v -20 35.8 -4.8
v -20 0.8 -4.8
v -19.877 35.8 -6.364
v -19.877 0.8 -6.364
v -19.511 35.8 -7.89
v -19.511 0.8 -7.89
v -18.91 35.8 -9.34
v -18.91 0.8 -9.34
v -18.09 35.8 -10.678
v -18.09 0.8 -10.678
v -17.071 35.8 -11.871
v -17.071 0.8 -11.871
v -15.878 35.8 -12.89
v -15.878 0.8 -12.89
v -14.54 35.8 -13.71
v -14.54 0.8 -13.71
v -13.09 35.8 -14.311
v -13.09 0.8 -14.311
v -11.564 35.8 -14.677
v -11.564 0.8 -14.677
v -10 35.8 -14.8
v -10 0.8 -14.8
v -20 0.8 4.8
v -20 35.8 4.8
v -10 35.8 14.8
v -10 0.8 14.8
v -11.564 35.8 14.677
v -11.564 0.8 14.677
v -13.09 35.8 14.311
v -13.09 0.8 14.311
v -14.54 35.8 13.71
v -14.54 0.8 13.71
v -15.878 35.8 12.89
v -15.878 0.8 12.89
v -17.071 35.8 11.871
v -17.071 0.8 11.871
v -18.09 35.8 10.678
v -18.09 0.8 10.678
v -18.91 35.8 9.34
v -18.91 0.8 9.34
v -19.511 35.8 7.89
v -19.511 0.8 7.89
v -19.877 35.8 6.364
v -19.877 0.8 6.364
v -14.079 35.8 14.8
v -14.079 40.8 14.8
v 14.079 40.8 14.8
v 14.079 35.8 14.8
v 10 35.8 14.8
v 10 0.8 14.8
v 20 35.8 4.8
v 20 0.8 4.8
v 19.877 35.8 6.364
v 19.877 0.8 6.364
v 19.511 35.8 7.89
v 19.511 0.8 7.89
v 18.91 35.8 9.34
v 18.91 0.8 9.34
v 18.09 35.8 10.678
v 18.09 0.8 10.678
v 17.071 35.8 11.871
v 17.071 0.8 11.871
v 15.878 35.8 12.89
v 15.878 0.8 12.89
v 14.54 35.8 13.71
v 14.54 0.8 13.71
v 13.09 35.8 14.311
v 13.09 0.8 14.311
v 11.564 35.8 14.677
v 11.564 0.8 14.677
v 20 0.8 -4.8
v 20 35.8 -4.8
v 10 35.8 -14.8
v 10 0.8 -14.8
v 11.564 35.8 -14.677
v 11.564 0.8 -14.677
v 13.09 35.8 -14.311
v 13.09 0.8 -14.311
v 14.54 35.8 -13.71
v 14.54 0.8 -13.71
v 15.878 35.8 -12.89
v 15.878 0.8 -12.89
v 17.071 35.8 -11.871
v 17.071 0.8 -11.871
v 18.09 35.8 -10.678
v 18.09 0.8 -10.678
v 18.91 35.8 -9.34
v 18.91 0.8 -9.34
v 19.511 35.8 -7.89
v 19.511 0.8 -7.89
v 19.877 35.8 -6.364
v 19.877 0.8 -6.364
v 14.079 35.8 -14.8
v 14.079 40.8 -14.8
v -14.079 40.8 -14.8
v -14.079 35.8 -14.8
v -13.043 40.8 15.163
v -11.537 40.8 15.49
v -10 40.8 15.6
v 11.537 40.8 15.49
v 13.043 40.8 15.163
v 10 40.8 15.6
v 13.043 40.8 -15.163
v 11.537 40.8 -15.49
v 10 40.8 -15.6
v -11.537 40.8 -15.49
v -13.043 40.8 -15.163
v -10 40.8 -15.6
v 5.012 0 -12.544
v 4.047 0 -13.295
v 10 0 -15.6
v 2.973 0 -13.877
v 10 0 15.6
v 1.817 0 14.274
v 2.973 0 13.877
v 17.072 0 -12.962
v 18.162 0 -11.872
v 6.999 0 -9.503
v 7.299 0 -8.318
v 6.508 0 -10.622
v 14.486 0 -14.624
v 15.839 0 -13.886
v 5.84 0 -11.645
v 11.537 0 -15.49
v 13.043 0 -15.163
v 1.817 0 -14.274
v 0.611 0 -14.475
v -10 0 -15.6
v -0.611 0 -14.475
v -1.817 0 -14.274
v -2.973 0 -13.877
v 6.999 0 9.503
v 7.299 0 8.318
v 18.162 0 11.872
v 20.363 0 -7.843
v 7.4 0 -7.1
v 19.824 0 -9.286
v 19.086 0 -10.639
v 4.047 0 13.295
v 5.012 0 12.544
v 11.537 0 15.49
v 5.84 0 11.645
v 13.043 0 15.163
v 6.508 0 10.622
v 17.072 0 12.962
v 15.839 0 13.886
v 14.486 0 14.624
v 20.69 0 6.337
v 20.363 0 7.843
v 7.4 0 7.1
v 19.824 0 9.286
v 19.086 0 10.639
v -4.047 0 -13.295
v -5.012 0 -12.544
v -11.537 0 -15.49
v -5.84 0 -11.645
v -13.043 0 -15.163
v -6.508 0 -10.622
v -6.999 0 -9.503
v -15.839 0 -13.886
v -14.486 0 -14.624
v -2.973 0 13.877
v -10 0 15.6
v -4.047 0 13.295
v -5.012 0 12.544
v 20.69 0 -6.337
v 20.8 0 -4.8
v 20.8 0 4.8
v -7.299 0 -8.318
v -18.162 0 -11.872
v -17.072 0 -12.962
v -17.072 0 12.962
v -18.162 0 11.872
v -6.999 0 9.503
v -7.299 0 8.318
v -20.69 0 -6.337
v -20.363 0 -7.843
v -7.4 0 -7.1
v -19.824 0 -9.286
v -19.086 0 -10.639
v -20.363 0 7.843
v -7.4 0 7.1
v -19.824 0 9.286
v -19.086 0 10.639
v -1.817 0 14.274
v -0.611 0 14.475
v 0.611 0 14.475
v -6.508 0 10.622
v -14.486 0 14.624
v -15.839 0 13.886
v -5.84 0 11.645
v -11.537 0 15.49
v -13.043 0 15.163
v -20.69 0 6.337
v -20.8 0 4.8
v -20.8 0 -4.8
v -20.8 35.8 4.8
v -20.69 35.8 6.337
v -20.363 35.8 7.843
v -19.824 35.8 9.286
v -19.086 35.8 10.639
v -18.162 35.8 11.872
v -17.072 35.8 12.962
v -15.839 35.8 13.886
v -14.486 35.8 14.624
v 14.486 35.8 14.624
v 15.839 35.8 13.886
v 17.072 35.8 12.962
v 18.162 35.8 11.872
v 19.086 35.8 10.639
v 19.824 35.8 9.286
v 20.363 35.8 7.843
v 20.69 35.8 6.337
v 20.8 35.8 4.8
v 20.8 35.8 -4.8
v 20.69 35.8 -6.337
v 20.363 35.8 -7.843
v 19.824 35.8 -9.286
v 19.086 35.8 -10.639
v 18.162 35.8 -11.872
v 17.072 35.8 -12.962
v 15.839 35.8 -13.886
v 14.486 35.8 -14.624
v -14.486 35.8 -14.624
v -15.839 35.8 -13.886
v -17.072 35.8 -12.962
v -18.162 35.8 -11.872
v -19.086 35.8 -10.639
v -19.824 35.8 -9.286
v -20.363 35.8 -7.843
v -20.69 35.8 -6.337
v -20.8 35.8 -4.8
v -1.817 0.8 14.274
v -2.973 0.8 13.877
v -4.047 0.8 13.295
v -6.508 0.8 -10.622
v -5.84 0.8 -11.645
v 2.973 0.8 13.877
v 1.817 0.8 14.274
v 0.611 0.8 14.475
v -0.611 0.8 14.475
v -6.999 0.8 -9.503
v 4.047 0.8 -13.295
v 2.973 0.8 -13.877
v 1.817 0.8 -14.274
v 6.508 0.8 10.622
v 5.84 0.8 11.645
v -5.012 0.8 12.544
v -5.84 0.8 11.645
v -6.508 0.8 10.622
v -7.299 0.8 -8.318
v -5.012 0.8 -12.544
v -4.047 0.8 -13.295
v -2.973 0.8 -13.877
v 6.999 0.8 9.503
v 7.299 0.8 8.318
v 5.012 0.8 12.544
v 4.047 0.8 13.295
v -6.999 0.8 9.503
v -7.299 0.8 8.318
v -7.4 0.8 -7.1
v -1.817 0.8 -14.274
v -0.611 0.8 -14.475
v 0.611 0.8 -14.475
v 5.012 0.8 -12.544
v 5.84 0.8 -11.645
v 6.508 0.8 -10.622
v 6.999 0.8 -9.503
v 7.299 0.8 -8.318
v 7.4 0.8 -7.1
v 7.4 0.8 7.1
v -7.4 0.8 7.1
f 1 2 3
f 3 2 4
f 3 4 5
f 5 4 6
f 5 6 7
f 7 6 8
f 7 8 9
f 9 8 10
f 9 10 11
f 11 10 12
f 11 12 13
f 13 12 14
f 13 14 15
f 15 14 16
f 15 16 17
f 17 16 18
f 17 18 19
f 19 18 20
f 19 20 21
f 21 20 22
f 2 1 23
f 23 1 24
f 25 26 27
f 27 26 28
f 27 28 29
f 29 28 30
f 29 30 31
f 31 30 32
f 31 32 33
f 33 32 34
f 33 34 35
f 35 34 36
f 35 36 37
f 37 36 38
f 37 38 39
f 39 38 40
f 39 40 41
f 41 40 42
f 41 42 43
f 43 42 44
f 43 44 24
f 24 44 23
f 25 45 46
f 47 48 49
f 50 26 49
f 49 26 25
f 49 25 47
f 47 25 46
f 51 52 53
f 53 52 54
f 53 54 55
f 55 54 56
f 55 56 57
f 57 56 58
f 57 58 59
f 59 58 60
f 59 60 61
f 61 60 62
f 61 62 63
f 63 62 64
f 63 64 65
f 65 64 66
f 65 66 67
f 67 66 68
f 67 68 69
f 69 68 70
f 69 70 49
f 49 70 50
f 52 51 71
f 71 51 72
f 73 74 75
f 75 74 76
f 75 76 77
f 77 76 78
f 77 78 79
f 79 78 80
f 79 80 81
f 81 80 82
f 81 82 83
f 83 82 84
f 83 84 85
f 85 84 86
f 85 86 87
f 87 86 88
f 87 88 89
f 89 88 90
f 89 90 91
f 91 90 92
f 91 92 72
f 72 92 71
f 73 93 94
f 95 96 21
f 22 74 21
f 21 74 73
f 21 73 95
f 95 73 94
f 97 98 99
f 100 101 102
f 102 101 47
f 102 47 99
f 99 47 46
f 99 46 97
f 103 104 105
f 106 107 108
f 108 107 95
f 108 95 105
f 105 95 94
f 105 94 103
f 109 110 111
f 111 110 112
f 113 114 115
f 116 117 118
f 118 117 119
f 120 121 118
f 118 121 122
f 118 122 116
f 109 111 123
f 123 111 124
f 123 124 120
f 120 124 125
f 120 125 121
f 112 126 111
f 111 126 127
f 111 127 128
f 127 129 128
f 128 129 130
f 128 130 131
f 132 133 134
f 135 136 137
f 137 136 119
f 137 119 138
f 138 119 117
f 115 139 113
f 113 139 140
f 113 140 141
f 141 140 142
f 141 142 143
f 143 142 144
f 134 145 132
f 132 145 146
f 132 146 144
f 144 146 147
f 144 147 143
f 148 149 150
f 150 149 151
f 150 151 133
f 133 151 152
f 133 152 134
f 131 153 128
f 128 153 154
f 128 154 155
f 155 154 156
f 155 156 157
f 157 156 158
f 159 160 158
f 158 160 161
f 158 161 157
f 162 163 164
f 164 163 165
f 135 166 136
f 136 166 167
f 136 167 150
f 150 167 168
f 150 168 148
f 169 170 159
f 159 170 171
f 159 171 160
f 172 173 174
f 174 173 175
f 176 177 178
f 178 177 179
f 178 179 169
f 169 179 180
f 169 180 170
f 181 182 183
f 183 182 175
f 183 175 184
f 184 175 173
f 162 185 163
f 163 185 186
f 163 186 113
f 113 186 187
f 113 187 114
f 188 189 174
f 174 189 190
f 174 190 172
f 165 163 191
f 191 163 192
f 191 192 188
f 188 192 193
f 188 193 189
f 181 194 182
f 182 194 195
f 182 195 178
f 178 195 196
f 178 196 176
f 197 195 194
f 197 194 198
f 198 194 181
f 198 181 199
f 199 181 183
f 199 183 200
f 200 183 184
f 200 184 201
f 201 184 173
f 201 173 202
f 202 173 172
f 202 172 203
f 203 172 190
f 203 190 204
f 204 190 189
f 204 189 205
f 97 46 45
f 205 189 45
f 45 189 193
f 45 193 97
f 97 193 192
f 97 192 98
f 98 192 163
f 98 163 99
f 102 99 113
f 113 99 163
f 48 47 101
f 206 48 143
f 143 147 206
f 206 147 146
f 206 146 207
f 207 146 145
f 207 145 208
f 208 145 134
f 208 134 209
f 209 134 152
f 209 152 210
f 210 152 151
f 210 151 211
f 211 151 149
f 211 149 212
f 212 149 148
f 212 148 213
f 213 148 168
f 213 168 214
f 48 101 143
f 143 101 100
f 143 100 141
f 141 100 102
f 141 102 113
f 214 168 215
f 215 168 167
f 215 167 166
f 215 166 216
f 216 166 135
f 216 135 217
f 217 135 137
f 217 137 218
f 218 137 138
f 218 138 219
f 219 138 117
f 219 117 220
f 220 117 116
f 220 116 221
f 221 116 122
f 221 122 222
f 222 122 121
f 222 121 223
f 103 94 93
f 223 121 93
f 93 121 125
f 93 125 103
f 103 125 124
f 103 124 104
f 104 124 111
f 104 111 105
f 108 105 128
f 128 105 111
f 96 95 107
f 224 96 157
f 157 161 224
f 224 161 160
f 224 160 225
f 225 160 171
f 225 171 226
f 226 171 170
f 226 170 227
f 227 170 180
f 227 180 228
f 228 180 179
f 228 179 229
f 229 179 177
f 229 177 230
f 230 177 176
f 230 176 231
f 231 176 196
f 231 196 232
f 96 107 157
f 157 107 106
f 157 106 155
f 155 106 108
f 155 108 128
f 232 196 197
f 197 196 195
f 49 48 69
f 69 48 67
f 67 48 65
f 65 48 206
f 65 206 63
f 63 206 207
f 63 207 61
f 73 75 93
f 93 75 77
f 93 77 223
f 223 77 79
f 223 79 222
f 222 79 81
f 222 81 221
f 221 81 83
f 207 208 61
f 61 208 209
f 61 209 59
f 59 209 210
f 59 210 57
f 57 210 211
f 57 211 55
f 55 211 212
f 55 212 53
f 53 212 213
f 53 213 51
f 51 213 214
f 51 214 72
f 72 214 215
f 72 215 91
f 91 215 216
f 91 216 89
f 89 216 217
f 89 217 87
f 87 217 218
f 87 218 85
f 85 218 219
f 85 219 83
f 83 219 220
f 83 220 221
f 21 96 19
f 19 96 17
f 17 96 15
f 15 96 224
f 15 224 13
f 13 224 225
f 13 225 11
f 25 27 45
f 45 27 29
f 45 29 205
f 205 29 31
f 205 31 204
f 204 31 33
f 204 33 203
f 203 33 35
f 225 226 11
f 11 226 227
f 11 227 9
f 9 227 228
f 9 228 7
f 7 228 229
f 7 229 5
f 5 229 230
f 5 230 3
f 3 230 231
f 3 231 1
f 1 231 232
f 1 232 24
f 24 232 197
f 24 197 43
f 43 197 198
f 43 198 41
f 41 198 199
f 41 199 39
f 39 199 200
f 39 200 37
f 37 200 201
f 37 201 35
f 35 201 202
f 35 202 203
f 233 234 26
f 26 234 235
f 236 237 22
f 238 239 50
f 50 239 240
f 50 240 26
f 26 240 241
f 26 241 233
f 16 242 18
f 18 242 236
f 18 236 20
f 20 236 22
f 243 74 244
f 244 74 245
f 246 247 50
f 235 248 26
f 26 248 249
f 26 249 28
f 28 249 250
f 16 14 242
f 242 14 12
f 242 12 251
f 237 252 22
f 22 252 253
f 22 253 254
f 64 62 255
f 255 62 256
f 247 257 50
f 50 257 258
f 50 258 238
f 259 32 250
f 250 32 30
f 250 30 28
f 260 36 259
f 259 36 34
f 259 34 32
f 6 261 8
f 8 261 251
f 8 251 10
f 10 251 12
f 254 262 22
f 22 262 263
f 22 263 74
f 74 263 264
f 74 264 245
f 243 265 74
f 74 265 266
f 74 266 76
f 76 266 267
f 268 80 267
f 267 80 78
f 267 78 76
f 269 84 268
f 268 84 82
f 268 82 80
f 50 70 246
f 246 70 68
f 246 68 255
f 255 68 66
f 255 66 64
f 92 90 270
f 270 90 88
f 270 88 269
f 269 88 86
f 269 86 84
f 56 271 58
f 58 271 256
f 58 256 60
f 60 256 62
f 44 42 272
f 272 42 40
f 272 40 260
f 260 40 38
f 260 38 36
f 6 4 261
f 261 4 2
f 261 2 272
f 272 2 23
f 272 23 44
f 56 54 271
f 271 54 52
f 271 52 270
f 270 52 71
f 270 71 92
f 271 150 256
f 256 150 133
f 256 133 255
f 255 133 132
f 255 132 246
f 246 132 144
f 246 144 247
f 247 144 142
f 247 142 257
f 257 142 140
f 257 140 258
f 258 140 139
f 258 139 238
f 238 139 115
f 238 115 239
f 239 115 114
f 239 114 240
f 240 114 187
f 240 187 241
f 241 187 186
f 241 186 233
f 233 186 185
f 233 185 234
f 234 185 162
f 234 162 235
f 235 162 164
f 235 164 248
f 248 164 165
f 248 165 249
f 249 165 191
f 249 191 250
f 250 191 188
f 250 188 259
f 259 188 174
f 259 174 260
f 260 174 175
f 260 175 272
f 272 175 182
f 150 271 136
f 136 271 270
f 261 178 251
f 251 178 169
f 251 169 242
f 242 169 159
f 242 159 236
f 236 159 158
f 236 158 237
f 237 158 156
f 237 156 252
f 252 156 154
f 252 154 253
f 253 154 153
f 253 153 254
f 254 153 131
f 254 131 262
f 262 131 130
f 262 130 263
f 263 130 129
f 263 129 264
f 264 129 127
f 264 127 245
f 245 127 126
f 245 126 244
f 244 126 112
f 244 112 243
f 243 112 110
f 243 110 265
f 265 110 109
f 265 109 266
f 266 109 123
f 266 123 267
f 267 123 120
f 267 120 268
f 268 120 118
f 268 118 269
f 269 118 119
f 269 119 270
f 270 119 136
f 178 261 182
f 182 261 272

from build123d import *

# Parameters (mm, degrees)
EXTRUDE_1_DEPTH     = 40.8
SKETCH_4_W          = 41.6
SKETCH_4_H          = 29.6
CUT_EXTRUDE_1_DEPTH = 5
EXTRUDE_2_DEPTH     = 0.8
CUT_EXTRUDE_2_DEPTH = 49.380161223


with BuildPart() as part:
    # 草圖1 → 填料-伸長1 (new body)
    with BuildSketch(Plane(origin=(0, 0, 0), x_dir=(1, 0, 0), z_dir=(0, 1, 0))):
        with BuildLine():
            Line((-10, -15.6), (10, -15.6))
            ThreePointArc((10, -15.6), (17.636753237, -12.436753237), (20.8, -4.8))
            Line((20.8, -4.8), (20.8, 4.8))
            ThreePointArc((20.8, 4.8), (17.636753237, 12.436753237), (10, 15.6))
            Line((10, 15.6), (-10, 15.6))
            ThreePointArc((-10, 15.6), (-17.636753237, 12.436753237), (-20.8, 4.8))
            Line((-20.8, 4.8), (-20.8, -4.8))
            ThreePointArc((-20.8, -4.8), (-17.636753237, -12.436753237), (-10, -15.6))
        make_face()
        with BuildLine():
            Line((-10, -14.8), (10, -14.8))
            ThreePointArc((10, -14.8), (17.071067812, -11.871067812), (20, -4.8))
            Line((20, -4.8), (20, 4.8))
            ThreePointArc((20, 4.8), (17.071067812, 11.871067812), (10, 14.8))
            Line((10, 14.8), (-10, 14.8))
            ThreePointArc((-10, 14.8), (-17.071067812, 11.871067812), (-20, 4.8))
            Line((-20, 4.8), (-20, -4.8))
            ThreePointArc((-20, -4.8), (-17.071067812, -11.871067812), (-10, -14.8))
        make_face(mode=Mode.SUBTRACT)
    extrude(amount=EXTRUDE_1_DEPTH)

    # 草圖4 → 除料-伸長1 (cut)
    with BuildSketch(Plane(origin=(0, 40.8, 0), x_dir=(1, 0, 0), z_dir=(0, 1, 0))):
        Rectangle(SKETCH_4_W, SKETCH_4_H)
    extrude(amount=-CUT_EXTRUDE_1_DEPTH, mode=Mode.SUBTRACT)

    # 草圖5 → 填料-伸長2 (add)
    with BuildSketch(Plane.XZ):
        with BuildLine():
            Line((20, 4.8), (20, -4.8))
            ThreePointArc((20, -4.8), (17.071067812, -11.871067812), (10, -14.8))
            Line((10, -14.8), (-10, -14.8))
            ThreePointArc((-10, -14.8), (-17.071067812, -11.871067812), (-20, -4.8))
            Line((-20, -4.8), (-20, 4.8))
            ThreePointArc((-20, 4.8), (-17.071067812, 11.871067812), (-10, 14.8))
            Line((-10, 14.8), (10, 14.8))
            ThreePointArc((10, 14.8), (17.071067812, 11.871067812), (20, 4.8))
        make_face()
    extrude(amount=-EXTRUDE_2_DEPTH)

    # 草圖7 → 除料-伸長2 (cut, through all)
    with BuildSketch(Plane.XZ):
        with BuildLine():
            Line((-7.4, 7.1), (-7.4, -7.1))
            ThreePointArc((-7.4, -7.1), (0, -14.5), (7.4, -7.1))
            Line((7.4, -7.1), (7.4, 7.1))
            ThreePointArc((7.4, 7.1), (0, 14.5), (-7.4, 7.1))
        make_face()
    extrude(amount=-CUT_EXTRUDE_2_DEPTH, mode=Mode.SUBTRACT)


solid = part.part
